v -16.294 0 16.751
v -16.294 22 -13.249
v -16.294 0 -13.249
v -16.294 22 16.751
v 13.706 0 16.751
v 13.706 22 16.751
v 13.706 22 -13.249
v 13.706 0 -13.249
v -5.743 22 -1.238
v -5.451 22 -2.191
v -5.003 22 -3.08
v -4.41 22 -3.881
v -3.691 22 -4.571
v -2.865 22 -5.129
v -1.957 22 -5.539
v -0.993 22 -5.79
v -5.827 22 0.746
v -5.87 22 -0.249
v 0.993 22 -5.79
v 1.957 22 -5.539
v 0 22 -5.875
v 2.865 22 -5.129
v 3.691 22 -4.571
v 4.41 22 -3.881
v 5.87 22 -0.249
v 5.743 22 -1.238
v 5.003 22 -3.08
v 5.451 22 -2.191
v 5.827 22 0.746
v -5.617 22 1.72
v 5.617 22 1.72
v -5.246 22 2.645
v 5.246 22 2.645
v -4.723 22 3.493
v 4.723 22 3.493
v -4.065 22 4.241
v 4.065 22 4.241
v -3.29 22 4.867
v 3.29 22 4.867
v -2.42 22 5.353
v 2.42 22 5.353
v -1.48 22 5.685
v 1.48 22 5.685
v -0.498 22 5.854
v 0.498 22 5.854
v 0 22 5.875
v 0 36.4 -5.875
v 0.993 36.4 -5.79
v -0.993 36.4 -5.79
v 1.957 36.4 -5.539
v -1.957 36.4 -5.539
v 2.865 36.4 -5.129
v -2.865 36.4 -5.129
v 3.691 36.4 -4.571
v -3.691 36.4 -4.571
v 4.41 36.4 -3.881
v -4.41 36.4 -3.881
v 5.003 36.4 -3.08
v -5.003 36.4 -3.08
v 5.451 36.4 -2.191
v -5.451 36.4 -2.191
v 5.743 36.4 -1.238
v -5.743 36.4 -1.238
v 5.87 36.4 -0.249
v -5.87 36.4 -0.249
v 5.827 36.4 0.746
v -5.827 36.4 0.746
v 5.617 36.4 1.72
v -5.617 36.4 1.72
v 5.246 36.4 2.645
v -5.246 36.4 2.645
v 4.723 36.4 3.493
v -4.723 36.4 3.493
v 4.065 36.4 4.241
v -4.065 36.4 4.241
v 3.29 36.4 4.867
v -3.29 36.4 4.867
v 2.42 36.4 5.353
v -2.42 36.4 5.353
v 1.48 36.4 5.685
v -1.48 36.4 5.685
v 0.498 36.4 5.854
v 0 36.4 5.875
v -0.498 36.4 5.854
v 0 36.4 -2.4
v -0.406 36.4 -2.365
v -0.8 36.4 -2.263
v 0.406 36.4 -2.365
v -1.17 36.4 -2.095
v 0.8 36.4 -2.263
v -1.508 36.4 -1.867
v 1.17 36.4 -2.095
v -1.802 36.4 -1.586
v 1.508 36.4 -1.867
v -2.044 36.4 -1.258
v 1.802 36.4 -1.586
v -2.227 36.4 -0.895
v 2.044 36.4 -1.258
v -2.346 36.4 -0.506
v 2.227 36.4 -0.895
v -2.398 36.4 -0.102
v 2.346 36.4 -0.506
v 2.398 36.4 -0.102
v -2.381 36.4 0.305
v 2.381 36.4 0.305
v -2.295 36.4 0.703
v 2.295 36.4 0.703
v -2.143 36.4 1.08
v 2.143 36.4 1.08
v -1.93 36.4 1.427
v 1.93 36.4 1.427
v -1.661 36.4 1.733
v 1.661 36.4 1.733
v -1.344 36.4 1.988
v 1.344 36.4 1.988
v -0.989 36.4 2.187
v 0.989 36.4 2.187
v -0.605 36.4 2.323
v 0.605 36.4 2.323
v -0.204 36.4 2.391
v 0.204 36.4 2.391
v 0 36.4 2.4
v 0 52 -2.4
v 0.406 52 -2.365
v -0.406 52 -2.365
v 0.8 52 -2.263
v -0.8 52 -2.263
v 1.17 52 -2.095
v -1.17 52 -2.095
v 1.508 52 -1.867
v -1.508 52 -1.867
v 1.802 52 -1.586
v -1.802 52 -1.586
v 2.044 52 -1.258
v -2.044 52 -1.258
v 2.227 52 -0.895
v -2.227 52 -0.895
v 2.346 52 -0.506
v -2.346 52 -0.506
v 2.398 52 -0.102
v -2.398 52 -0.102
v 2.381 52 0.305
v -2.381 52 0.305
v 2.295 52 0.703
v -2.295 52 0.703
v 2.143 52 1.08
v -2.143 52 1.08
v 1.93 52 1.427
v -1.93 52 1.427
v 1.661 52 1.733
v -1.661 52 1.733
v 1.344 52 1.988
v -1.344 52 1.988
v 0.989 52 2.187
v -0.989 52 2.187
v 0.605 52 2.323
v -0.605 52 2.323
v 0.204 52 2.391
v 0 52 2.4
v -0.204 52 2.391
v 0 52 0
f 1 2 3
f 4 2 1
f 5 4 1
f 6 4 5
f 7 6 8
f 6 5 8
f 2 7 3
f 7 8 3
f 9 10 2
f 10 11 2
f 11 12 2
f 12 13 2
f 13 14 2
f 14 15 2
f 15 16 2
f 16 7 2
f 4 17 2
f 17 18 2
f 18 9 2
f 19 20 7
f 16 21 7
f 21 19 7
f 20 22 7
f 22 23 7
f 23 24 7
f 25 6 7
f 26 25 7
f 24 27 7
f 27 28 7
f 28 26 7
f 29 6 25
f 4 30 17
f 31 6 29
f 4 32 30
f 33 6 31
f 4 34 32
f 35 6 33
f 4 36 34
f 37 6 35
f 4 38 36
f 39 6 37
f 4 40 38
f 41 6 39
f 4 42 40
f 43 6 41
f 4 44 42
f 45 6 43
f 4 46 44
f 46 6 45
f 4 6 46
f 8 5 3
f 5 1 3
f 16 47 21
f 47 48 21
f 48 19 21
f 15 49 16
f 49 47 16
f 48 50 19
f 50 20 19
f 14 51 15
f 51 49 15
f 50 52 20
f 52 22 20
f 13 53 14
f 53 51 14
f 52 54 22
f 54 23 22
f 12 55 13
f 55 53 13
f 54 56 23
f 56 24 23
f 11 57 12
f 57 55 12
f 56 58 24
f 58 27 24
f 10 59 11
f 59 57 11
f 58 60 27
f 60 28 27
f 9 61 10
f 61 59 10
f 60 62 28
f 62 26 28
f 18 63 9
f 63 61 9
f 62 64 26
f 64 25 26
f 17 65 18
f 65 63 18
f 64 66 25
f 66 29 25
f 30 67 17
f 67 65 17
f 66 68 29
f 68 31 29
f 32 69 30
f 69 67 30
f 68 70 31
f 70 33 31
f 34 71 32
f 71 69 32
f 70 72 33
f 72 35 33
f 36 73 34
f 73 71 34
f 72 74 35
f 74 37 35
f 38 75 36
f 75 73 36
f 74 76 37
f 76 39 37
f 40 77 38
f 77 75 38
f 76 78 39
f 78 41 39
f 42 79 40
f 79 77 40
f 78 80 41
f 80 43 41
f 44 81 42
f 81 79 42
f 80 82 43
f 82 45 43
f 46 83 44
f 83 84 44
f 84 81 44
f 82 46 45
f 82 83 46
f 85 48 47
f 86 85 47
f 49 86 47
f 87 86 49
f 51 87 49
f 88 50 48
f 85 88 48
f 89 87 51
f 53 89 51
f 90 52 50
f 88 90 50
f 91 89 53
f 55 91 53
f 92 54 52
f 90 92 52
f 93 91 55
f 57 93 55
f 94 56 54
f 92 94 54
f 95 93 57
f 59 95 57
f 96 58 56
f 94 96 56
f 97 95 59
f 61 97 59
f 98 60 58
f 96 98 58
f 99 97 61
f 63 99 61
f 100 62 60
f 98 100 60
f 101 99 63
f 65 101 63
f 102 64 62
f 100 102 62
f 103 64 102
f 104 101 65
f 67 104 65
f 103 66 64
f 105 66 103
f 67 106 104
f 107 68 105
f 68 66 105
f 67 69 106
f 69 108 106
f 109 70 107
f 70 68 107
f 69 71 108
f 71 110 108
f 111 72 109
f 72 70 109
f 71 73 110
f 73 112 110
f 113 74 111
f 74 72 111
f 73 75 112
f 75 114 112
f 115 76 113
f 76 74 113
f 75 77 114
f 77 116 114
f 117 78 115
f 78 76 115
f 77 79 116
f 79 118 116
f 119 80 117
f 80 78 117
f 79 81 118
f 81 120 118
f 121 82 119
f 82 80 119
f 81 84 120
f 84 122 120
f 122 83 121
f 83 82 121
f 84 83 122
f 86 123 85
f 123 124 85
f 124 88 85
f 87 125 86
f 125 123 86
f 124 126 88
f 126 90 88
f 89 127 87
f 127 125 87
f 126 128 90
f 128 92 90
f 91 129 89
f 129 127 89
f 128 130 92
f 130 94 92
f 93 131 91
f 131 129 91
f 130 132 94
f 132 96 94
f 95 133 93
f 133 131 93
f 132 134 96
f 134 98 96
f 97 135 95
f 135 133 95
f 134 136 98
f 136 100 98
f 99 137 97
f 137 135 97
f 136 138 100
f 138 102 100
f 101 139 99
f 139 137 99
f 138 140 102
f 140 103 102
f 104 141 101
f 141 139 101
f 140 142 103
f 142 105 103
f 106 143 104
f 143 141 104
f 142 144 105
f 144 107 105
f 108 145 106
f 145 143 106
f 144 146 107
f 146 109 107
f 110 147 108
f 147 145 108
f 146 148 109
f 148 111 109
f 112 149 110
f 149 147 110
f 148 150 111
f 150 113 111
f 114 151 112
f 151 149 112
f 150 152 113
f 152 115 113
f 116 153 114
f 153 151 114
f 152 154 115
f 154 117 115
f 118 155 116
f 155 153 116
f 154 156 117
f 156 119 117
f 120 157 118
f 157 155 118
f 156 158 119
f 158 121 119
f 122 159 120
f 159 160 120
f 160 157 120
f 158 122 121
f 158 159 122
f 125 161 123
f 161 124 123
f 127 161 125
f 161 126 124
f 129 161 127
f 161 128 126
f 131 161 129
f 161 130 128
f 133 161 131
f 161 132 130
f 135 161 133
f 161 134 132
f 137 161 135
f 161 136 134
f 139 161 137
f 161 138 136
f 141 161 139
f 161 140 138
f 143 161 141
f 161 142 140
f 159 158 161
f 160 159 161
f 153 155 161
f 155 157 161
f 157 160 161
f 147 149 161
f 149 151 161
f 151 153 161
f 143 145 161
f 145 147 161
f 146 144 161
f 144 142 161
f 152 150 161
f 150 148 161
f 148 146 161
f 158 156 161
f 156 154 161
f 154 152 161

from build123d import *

# Parameters (mm, degrees)
SKETCH_1_W        = 30
SKETCH_1_H        = 30
EXTRUDE_268_DEPTH = 22
SKETCH_2_R        = 5.875
EXTRUDE_2_DEPTH   = 14.4
SKETCH_4_R        = 2.4
EXTRUDE_3_DEPTH   = 15.6


with BuildPart() as part:
    # Эскиз1 → Extrude 268 (new body)
    with BuildSketch(Plane(origin=(0, 0, 0), x_dir=(1, 0, 0), z_dir=(0, 1, 0))):
        with Locations((-1.294416244, -1.751269036)):
            Rectangle(SKETCH_1_W, SKETCH_1_H)
    extrude(amount=EXTRUDE_268_DEPTH)

    # Эскиз2 → Бобышка-Вытянуть2 (add)
    with BuildSketch(Plane(origin=(0, 22, 0), x_dir=(1, 0, 0), z_dir=(0, 1, 0))):
        with Locations(Location((0, 0, 0), (0, 0, 270))):
            Circle(SKETCH_2_R)
    extrude(amount=EXTRUDE_2_DEPTH)

    # Эскиз4 → Бобышка-Вытянуть3 (add)
    with BuildSketch(Plane(origin=(0, 36.4, 0), x_dir=(1, 0, 0), z_dir=(0, 1, 0))):
        with Locations(Location((0, 0, 0), (0, 0, 270))):
            Circle(SKETCH_4_R)
    extrude(amount=EXTRUDE_3_DEPTH)


solid = part.part
